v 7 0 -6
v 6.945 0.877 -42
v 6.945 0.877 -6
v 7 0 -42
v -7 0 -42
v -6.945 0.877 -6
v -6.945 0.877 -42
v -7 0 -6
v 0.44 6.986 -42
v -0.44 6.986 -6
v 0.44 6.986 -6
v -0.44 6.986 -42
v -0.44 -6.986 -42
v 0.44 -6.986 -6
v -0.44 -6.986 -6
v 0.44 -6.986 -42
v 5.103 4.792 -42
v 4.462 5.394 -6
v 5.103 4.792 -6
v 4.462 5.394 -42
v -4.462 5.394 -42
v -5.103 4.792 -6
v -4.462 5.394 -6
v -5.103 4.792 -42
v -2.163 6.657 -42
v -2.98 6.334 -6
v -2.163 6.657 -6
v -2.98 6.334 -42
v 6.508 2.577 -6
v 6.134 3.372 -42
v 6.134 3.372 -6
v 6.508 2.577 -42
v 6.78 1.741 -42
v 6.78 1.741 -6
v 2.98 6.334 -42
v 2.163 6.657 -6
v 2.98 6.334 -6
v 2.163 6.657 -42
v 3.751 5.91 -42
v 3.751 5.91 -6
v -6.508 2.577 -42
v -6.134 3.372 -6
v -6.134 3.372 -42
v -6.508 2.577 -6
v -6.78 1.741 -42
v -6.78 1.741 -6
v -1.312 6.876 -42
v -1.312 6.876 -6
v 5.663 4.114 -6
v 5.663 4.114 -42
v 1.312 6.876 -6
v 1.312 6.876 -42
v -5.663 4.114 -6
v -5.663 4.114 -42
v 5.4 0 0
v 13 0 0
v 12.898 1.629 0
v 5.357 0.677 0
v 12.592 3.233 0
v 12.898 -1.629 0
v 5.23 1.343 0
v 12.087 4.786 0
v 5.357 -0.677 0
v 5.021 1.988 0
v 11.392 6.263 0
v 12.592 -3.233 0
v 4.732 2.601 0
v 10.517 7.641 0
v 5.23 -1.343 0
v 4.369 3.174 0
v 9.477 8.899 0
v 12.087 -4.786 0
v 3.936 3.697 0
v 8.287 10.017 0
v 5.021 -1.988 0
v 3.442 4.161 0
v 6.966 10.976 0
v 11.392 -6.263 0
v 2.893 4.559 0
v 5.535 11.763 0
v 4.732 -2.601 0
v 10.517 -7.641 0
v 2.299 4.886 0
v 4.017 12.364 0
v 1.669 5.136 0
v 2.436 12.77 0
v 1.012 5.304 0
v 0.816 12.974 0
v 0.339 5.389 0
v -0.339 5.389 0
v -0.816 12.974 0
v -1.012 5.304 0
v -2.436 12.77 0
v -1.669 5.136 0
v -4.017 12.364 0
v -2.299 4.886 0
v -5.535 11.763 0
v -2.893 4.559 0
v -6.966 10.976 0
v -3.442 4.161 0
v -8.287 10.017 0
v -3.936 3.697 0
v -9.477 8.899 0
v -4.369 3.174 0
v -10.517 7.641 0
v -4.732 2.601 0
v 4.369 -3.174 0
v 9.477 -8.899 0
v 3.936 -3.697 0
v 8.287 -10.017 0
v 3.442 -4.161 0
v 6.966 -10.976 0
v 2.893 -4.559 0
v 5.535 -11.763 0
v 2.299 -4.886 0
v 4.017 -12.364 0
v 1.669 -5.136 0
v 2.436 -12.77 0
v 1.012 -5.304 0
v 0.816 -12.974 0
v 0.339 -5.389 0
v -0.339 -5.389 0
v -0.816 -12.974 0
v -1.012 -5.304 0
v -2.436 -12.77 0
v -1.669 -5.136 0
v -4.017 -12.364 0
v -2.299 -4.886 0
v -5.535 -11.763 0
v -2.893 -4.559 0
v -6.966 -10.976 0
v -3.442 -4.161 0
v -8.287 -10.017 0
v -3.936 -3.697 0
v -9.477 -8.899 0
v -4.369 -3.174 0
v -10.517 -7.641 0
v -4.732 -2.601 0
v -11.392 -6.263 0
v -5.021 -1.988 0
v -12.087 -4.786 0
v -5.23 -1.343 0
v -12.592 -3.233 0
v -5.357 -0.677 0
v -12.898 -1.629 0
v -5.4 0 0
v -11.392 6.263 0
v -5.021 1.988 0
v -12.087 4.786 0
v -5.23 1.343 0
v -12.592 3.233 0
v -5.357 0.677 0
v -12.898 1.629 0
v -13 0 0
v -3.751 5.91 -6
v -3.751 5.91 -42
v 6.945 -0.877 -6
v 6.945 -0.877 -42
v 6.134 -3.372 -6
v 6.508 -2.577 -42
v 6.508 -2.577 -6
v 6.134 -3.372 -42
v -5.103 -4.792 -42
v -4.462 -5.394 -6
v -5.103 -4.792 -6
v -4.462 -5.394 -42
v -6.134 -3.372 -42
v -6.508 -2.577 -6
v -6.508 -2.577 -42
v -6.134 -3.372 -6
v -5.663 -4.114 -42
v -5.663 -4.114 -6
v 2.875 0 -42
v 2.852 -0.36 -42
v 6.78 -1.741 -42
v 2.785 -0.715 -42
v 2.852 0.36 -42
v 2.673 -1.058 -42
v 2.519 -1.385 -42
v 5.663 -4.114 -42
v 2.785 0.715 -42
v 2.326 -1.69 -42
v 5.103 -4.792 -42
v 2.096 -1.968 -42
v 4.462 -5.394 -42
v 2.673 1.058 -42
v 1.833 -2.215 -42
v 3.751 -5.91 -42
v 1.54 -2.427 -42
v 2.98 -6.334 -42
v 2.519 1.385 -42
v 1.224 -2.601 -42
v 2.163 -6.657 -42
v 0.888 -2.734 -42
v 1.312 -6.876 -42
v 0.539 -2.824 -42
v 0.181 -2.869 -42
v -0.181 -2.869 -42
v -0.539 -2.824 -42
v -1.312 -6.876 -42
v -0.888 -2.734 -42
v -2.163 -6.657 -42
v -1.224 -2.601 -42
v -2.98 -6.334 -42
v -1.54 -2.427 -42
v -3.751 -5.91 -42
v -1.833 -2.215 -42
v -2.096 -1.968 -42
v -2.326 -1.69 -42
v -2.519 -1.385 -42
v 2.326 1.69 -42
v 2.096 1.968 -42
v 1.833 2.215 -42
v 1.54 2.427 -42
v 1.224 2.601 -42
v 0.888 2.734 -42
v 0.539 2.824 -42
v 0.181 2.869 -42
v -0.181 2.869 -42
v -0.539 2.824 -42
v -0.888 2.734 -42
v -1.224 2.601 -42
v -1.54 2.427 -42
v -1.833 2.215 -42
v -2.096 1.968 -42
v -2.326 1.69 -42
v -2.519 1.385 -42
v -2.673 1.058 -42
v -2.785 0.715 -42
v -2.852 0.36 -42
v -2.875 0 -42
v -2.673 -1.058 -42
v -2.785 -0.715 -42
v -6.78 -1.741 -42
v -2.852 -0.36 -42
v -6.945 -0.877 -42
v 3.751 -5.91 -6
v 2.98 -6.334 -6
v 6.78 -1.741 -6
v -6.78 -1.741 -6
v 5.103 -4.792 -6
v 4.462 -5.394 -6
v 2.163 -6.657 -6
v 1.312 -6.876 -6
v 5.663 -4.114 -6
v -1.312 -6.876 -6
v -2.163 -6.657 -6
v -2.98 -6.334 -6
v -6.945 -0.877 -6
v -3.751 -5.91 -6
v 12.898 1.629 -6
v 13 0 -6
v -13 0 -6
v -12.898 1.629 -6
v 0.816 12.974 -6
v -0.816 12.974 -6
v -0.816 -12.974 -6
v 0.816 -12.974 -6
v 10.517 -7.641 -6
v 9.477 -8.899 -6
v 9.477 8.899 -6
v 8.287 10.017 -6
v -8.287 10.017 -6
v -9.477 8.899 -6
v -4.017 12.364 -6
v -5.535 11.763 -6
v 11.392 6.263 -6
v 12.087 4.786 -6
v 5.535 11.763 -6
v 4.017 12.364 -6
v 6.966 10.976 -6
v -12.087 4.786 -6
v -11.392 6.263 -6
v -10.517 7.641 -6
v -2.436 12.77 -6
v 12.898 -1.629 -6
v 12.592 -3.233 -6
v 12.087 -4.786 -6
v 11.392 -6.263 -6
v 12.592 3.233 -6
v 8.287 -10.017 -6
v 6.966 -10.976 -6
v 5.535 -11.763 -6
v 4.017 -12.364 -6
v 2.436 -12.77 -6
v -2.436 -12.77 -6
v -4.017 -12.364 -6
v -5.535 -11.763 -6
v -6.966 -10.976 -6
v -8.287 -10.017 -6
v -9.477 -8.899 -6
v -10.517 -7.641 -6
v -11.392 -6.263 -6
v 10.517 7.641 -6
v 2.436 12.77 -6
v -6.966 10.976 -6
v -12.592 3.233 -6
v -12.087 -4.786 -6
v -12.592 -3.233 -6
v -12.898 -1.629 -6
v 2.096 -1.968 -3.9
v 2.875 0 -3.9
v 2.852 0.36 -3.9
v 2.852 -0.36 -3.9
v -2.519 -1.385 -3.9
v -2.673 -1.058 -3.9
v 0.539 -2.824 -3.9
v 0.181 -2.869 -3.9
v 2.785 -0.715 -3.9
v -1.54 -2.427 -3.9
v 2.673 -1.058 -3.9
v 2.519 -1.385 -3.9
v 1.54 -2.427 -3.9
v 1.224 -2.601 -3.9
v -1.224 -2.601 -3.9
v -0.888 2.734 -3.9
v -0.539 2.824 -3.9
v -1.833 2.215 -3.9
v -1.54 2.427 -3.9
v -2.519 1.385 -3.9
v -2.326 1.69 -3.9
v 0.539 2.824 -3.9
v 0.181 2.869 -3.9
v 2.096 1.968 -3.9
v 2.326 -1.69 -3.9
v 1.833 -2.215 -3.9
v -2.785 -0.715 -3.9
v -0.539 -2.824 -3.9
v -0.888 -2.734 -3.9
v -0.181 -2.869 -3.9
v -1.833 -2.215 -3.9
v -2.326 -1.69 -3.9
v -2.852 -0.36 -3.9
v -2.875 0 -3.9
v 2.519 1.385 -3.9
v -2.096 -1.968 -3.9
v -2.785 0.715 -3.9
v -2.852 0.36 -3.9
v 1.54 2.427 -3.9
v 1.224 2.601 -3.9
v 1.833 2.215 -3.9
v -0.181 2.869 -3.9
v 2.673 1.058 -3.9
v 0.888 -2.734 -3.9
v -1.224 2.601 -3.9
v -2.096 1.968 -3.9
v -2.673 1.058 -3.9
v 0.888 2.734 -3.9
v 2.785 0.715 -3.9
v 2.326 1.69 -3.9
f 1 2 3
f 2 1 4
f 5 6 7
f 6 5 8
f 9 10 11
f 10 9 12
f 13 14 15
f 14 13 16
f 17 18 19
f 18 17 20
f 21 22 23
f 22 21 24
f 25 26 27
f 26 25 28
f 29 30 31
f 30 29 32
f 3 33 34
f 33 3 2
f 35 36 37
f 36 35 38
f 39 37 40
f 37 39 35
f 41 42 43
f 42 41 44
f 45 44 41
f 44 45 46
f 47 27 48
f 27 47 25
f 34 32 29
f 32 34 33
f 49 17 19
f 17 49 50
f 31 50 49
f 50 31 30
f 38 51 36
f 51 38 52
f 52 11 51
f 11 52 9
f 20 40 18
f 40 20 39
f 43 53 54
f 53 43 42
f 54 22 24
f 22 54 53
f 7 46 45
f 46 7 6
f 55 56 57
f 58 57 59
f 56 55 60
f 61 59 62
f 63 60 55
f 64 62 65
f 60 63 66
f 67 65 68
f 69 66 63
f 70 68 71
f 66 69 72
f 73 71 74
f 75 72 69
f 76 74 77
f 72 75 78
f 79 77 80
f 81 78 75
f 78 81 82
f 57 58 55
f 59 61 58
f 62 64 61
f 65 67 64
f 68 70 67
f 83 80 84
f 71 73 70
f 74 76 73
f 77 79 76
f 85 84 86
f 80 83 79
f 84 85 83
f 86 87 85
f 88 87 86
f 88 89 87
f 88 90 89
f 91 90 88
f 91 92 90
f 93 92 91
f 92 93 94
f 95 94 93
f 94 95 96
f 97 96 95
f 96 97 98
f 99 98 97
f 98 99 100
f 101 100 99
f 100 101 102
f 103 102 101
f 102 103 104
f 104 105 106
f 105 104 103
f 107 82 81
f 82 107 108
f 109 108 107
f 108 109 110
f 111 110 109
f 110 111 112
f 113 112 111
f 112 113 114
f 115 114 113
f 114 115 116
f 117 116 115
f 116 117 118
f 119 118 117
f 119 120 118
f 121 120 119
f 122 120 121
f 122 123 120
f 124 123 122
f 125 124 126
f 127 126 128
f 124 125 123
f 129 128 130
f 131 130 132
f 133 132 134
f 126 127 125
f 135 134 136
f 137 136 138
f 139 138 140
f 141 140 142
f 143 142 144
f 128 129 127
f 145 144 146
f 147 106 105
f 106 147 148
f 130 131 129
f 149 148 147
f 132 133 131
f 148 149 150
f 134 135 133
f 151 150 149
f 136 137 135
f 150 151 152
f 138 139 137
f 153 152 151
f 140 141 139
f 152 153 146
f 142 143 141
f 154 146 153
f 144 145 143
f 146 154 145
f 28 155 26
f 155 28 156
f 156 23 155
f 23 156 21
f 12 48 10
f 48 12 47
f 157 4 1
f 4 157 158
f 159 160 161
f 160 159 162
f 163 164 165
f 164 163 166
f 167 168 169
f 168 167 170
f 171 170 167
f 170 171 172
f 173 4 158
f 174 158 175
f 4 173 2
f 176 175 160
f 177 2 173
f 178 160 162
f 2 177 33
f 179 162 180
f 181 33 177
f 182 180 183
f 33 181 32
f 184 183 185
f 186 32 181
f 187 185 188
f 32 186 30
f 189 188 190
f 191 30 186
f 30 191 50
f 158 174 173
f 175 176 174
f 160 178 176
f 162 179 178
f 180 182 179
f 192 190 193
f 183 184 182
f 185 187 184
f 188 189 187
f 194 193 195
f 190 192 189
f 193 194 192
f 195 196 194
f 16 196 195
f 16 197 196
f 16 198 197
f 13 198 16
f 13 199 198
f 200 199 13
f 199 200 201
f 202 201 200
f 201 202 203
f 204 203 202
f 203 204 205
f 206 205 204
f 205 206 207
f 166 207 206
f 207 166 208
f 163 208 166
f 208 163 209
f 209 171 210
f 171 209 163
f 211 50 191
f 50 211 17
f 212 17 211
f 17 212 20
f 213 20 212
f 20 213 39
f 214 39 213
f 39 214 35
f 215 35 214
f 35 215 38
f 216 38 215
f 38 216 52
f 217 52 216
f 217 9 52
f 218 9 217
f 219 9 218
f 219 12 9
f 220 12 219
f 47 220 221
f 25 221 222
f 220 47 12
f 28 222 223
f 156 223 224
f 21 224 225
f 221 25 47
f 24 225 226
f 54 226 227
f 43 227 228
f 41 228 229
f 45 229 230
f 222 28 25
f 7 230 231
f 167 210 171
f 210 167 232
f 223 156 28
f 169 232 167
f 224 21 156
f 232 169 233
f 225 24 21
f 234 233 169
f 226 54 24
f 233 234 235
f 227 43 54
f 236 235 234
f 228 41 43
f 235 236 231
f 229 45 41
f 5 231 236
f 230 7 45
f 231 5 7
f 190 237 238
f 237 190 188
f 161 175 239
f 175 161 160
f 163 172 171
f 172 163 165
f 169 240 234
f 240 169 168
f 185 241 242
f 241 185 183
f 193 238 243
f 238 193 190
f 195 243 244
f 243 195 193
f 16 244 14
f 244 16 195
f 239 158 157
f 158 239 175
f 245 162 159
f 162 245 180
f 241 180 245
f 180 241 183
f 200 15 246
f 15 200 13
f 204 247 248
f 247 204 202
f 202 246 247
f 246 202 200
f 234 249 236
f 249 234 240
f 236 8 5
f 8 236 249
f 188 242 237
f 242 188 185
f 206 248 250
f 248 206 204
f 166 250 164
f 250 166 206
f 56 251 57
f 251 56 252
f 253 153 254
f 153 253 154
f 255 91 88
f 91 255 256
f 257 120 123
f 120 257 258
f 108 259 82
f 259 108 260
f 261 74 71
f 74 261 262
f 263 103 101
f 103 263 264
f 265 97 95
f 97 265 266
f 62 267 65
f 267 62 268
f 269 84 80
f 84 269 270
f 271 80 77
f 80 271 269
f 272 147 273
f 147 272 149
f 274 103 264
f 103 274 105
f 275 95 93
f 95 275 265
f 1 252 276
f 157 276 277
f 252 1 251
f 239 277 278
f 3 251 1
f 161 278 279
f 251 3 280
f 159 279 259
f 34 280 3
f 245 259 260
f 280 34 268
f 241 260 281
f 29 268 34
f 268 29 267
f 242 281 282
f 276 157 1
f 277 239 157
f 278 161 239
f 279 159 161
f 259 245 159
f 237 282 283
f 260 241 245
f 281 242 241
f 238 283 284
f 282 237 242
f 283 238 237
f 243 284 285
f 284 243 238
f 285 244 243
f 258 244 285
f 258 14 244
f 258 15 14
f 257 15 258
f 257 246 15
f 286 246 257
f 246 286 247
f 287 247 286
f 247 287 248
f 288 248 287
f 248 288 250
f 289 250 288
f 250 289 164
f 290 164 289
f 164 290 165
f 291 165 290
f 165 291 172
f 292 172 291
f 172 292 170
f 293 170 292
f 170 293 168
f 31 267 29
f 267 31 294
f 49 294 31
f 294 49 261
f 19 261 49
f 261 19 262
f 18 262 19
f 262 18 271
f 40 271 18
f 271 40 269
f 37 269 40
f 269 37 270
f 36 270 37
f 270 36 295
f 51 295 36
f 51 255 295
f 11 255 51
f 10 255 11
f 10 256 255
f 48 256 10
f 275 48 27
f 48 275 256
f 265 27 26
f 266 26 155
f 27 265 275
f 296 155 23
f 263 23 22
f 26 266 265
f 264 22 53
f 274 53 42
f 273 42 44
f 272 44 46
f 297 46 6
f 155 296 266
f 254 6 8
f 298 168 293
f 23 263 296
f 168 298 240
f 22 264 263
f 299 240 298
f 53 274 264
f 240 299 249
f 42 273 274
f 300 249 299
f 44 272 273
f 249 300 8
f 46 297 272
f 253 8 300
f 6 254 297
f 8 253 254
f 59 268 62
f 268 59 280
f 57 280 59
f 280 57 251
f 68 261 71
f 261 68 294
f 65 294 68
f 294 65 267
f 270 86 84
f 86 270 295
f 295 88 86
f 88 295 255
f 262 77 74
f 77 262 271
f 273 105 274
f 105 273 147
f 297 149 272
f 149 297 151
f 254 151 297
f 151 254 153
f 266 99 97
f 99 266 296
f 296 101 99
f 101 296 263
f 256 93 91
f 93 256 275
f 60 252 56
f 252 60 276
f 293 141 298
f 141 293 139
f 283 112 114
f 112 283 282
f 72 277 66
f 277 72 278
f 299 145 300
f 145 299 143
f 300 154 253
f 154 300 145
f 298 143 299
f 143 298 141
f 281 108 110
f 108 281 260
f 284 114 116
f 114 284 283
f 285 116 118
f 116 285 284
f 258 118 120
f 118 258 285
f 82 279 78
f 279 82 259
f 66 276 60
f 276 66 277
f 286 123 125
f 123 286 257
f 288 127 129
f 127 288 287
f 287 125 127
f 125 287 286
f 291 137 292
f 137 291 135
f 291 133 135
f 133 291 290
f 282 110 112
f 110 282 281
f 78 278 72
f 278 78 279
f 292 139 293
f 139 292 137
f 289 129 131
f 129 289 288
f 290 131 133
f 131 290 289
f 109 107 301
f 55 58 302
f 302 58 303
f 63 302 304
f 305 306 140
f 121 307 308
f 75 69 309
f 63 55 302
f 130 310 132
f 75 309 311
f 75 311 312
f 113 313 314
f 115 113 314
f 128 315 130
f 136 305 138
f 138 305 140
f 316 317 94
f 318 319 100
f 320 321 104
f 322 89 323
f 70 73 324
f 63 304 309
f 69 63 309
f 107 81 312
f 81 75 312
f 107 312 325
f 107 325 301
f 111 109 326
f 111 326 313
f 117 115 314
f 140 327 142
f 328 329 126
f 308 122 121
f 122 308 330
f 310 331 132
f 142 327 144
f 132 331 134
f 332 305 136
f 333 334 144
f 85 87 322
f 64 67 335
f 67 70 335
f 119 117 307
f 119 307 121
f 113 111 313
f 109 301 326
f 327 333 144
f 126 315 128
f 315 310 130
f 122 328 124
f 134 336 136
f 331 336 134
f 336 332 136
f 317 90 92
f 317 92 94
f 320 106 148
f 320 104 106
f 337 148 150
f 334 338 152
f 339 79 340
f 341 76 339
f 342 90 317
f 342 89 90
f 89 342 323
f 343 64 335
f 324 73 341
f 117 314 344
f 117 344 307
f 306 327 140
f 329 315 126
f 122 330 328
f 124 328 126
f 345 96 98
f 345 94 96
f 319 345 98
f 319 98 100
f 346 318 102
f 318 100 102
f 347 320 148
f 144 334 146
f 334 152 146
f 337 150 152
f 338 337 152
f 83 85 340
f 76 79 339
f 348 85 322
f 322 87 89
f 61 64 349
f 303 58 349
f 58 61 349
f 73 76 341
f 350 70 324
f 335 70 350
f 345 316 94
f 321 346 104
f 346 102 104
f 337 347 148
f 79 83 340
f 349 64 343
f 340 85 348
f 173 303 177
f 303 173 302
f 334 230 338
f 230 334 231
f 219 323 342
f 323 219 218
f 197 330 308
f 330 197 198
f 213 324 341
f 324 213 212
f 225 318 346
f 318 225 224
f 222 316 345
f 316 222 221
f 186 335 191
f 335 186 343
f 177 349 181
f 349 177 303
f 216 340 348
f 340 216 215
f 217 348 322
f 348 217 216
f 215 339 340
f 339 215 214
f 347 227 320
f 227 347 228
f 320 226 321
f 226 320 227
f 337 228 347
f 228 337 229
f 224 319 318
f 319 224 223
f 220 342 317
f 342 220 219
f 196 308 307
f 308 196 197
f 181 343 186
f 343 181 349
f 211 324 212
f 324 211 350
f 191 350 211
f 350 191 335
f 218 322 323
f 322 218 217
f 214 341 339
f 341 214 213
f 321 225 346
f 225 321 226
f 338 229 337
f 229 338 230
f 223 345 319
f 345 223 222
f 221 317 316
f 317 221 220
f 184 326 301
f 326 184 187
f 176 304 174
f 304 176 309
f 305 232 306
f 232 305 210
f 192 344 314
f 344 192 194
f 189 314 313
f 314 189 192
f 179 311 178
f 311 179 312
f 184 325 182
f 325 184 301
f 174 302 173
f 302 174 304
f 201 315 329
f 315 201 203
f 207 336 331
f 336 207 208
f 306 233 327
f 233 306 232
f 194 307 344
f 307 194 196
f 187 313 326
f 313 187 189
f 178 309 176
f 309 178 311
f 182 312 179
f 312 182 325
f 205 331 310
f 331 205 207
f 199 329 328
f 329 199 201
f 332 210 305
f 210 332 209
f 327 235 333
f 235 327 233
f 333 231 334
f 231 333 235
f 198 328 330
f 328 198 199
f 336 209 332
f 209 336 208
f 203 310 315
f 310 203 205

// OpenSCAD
$fn = 50;


difference() {
	union() {
		translate(v = [0, 0, -42.0000000000]) {
			cylinder(h = 42, r = 7.0000000000);
		}
		translate(v = [0, 0, -6.0000000000]) {
			cylinder(h = 6, r = 13.0000000000);
		}
	}
	union() {
		translate(v = [0, 0, 0]) {
			rotate(a = [0, 0, 0]) {
				difference() {
					union() {
						#translate(v = [0, 0, -42.0000000000]) {
							cylinder(h = 42, r = 2.6000000000);
						}
						#translate(v = [0, 0, -3.9000000000]) {
							cylinder(h = 3.9000000000, r1 = 2.8750000000, r2 = 5.4000000000);
						}
						#translate(v = [0, 0, -42.0000000000]) {
							cylinder(h = 42, r = 2.8750000000);
						}
						#translate(v = [0, 0, -42.0000000000]) {
							cylinder(h = 42, r = 2.6000000000);
						}
					}
					union();
				}
			}
		}
	}
}
